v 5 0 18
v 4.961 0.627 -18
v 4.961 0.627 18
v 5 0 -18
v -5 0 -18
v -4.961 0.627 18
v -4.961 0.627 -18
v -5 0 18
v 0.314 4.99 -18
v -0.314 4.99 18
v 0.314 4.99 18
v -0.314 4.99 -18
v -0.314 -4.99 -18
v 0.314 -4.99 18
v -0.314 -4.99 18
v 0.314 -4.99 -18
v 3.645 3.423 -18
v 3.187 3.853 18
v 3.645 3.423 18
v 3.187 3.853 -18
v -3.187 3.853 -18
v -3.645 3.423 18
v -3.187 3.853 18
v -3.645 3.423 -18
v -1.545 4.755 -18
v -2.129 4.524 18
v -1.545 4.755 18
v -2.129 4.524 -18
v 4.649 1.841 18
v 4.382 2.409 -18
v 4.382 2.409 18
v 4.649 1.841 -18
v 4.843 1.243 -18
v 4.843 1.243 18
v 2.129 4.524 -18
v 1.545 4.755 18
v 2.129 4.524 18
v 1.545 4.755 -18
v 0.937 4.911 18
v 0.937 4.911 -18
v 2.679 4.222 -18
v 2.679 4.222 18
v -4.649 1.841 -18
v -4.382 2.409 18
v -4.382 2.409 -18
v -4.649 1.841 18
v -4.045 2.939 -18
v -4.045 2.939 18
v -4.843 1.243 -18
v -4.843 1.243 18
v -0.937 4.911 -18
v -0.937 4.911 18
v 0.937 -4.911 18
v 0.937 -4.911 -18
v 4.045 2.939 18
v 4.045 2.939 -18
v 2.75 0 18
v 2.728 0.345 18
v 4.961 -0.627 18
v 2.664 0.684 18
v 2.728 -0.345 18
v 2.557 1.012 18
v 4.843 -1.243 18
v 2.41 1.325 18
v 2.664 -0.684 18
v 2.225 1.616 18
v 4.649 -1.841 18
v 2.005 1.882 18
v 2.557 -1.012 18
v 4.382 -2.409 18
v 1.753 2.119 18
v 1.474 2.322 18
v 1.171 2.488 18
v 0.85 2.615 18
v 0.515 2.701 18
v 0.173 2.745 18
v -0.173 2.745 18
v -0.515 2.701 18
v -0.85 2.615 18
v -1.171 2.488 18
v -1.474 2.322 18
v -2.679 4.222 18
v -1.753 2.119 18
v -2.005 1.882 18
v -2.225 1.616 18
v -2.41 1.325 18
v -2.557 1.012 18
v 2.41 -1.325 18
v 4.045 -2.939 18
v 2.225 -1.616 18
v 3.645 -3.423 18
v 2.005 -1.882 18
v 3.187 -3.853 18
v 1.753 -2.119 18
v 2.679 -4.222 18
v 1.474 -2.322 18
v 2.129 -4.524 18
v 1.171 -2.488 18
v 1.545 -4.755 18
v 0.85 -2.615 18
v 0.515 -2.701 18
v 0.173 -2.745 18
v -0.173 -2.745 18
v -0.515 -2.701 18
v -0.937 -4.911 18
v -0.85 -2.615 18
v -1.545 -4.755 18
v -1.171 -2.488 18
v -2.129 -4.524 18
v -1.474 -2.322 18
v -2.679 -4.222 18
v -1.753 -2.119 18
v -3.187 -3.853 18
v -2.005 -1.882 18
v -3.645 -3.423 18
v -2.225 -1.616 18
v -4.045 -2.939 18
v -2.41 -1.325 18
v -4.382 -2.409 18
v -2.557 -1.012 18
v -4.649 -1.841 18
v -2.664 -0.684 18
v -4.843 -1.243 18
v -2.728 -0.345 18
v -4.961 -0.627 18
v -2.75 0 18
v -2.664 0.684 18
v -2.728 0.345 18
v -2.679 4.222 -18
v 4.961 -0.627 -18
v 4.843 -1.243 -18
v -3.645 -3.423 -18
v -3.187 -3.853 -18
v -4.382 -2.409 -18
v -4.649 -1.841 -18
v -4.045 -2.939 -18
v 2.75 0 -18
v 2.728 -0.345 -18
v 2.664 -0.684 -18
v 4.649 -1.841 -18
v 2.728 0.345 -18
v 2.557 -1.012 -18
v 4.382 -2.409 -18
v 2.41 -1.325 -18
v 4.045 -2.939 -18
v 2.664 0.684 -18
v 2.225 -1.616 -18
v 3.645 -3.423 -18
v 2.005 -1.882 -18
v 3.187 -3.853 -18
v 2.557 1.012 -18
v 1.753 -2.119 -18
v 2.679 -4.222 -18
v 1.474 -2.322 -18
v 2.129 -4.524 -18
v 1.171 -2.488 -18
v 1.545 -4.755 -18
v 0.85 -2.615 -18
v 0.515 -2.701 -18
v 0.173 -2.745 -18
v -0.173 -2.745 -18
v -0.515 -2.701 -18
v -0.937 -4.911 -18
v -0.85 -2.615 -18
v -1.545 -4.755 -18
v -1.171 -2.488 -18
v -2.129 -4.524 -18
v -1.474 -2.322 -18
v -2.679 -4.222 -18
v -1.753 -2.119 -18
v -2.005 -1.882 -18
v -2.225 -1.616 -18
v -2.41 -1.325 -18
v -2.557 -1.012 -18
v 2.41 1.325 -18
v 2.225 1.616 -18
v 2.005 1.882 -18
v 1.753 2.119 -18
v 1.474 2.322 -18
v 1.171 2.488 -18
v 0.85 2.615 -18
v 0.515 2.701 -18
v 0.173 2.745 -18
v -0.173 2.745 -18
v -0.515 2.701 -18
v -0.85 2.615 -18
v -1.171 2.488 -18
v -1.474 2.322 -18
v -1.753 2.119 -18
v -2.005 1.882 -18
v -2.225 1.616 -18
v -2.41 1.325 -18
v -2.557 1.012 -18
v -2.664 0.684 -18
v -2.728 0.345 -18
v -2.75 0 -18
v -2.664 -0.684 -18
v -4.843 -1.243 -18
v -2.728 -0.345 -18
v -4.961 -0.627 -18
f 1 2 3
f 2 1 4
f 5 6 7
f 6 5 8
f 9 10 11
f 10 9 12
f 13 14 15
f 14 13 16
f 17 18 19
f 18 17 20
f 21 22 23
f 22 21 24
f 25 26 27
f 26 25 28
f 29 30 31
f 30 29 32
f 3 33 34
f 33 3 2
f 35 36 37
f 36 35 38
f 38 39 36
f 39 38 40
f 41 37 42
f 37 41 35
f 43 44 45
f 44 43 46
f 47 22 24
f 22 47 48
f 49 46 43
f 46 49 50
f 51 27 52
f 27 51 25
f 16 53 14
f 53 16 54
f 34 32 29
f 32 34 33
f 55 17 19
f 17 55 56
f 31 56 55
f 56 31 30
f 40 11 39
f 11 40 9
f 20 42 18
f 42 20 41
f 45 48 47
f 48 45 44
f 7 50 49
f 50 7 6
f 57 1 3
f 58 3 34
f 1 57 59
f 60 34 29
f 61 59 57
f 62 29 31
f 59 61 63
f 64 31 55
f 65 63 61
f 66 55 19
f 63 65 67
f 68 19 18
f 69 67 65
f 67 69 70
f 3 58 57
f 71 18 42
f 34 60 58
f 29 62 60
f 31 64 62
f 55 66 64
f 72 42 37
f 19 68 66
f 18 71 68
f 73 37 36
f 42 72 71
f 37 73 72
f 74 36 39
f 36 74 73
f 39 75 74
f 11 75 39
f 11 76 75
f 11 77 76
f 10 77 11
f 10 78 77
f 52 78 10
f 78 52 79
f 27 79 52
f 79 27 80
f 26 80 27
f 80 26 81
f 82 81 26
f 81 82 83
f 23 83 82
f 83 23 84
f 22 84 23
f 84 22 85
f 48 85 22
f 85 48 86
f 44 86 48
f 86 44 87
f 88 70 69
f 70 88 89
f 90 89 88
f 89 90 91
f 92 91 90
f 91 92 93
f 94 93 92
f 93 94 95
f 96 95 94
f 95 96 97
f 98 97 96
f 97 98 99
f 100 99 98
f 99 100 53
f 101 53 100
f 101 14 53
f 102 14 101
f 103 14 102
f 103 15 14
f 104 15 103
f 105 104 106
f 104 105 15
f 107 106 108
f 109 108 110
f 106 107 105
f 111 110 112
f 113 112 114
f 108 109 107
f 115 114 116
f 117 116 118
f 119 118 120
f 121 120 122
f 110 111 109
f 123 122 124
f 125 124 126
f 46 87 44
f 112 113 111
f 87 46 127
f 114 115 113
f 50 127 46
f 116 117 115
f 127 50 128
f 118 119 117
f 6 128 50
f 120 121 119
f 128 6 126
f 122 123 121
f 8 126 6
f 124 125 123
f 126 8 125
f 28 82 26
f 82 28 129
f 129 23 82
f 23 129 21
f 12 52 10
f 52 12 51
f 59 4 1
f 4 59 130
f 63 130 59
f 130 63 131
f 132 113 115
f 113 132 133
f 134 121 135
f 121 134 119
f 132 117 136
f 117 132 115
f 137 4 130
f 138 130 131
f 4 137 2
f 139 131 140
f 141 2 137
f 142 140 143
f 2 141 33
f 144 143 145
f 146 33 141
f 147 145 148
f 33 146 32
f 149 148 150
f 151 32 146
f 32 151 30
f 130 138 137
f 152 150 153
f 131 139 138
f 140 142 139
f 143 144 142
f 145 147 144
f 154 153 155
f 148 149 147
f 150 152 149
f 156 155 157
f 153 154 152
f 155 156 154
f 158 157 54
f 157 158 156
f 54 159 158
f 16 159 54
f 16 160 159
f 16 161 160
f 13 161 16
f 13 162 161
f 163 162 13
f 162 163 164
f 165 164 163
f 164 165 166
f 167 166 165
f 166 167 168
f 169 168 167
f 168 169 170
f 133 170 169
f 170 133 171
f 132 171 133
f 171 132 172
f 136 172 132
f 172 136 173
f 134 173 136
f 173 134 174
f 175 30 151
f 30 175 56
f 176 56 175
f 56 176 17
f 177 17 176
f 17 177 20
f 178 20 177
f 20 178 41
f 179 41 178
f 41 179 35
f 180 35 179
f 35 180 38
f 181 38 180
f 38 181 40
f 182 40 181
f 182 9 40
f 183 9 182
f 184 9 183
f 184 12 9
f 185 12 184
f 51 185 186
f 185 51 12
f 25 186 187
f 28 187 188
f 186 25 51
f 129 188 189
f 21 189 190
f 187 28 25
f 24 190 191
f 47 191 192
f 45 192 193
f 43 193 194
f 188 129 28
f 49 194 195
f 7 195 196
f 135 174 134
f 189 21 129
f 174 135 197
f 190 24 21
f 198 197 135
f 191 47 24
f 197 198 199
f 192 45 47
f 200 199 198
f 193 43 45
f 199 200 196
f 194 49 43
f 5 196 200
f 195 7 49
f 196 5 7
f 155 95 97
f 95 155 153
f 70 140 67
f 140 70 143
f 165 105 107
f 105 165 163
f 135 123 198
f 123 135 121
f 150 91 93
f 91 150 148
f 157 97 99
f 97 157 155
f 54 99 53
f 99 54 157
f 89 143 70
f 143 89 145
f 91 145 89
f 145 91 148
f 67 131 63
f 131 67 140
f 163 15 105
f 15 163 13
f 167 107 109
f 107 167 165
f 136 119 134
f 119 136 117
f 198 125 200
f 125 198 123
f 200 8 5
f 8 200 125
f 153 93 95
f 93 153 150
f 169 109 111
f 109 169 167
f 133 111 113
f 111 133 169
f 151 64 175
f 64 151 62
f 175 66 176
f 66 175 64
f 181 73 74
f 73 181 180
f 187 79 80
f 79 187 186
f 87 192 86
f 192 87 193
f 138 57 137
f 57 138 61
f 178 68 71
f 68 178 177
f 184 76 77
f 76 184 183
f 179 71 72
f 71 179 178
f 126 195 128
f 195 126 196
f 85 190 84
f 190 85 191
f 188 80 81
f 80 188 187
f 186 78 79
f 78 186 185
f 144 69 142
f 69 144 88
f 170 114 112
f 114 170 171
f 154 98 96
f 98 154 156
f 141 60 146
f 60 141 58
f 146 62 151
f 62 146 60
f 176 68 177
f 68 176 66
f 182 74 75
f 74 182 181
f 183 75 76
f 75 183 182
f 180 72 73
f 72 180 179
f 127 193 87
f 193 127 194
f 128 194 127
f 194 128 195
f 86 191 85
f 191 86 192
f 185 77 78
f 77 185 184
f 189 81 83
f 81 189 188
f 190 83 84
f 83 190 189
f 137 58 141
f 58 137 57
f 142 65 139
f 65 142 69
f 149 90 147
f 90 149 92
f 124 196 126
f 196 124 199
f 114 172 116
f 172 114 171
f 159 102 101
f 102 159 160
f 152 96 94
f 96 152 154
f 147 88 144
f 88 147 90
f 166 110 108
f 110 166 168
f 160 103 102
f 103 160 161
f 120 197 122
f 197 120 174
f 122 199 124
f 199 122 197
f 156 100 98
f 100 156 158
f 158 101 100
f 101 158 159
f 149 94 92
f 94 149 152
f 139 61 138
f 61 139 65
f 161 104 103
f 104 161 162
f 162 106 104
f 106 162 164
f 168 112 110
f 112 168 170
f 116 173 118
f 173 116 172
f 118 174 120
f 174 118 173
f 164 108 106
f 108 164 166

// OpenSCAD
$fn = 50;


difference() {
	union() {
		translate(v = [0, 0, -18.0000000000]) {
			cylinder(h = 36, r = 5.0000000000);
		}
	}
	union() {
		translate(v = [0, 0, -100.0000000000]) {
			cylinder(h = 200, r = 2.7500000000);
		}
	}
}
